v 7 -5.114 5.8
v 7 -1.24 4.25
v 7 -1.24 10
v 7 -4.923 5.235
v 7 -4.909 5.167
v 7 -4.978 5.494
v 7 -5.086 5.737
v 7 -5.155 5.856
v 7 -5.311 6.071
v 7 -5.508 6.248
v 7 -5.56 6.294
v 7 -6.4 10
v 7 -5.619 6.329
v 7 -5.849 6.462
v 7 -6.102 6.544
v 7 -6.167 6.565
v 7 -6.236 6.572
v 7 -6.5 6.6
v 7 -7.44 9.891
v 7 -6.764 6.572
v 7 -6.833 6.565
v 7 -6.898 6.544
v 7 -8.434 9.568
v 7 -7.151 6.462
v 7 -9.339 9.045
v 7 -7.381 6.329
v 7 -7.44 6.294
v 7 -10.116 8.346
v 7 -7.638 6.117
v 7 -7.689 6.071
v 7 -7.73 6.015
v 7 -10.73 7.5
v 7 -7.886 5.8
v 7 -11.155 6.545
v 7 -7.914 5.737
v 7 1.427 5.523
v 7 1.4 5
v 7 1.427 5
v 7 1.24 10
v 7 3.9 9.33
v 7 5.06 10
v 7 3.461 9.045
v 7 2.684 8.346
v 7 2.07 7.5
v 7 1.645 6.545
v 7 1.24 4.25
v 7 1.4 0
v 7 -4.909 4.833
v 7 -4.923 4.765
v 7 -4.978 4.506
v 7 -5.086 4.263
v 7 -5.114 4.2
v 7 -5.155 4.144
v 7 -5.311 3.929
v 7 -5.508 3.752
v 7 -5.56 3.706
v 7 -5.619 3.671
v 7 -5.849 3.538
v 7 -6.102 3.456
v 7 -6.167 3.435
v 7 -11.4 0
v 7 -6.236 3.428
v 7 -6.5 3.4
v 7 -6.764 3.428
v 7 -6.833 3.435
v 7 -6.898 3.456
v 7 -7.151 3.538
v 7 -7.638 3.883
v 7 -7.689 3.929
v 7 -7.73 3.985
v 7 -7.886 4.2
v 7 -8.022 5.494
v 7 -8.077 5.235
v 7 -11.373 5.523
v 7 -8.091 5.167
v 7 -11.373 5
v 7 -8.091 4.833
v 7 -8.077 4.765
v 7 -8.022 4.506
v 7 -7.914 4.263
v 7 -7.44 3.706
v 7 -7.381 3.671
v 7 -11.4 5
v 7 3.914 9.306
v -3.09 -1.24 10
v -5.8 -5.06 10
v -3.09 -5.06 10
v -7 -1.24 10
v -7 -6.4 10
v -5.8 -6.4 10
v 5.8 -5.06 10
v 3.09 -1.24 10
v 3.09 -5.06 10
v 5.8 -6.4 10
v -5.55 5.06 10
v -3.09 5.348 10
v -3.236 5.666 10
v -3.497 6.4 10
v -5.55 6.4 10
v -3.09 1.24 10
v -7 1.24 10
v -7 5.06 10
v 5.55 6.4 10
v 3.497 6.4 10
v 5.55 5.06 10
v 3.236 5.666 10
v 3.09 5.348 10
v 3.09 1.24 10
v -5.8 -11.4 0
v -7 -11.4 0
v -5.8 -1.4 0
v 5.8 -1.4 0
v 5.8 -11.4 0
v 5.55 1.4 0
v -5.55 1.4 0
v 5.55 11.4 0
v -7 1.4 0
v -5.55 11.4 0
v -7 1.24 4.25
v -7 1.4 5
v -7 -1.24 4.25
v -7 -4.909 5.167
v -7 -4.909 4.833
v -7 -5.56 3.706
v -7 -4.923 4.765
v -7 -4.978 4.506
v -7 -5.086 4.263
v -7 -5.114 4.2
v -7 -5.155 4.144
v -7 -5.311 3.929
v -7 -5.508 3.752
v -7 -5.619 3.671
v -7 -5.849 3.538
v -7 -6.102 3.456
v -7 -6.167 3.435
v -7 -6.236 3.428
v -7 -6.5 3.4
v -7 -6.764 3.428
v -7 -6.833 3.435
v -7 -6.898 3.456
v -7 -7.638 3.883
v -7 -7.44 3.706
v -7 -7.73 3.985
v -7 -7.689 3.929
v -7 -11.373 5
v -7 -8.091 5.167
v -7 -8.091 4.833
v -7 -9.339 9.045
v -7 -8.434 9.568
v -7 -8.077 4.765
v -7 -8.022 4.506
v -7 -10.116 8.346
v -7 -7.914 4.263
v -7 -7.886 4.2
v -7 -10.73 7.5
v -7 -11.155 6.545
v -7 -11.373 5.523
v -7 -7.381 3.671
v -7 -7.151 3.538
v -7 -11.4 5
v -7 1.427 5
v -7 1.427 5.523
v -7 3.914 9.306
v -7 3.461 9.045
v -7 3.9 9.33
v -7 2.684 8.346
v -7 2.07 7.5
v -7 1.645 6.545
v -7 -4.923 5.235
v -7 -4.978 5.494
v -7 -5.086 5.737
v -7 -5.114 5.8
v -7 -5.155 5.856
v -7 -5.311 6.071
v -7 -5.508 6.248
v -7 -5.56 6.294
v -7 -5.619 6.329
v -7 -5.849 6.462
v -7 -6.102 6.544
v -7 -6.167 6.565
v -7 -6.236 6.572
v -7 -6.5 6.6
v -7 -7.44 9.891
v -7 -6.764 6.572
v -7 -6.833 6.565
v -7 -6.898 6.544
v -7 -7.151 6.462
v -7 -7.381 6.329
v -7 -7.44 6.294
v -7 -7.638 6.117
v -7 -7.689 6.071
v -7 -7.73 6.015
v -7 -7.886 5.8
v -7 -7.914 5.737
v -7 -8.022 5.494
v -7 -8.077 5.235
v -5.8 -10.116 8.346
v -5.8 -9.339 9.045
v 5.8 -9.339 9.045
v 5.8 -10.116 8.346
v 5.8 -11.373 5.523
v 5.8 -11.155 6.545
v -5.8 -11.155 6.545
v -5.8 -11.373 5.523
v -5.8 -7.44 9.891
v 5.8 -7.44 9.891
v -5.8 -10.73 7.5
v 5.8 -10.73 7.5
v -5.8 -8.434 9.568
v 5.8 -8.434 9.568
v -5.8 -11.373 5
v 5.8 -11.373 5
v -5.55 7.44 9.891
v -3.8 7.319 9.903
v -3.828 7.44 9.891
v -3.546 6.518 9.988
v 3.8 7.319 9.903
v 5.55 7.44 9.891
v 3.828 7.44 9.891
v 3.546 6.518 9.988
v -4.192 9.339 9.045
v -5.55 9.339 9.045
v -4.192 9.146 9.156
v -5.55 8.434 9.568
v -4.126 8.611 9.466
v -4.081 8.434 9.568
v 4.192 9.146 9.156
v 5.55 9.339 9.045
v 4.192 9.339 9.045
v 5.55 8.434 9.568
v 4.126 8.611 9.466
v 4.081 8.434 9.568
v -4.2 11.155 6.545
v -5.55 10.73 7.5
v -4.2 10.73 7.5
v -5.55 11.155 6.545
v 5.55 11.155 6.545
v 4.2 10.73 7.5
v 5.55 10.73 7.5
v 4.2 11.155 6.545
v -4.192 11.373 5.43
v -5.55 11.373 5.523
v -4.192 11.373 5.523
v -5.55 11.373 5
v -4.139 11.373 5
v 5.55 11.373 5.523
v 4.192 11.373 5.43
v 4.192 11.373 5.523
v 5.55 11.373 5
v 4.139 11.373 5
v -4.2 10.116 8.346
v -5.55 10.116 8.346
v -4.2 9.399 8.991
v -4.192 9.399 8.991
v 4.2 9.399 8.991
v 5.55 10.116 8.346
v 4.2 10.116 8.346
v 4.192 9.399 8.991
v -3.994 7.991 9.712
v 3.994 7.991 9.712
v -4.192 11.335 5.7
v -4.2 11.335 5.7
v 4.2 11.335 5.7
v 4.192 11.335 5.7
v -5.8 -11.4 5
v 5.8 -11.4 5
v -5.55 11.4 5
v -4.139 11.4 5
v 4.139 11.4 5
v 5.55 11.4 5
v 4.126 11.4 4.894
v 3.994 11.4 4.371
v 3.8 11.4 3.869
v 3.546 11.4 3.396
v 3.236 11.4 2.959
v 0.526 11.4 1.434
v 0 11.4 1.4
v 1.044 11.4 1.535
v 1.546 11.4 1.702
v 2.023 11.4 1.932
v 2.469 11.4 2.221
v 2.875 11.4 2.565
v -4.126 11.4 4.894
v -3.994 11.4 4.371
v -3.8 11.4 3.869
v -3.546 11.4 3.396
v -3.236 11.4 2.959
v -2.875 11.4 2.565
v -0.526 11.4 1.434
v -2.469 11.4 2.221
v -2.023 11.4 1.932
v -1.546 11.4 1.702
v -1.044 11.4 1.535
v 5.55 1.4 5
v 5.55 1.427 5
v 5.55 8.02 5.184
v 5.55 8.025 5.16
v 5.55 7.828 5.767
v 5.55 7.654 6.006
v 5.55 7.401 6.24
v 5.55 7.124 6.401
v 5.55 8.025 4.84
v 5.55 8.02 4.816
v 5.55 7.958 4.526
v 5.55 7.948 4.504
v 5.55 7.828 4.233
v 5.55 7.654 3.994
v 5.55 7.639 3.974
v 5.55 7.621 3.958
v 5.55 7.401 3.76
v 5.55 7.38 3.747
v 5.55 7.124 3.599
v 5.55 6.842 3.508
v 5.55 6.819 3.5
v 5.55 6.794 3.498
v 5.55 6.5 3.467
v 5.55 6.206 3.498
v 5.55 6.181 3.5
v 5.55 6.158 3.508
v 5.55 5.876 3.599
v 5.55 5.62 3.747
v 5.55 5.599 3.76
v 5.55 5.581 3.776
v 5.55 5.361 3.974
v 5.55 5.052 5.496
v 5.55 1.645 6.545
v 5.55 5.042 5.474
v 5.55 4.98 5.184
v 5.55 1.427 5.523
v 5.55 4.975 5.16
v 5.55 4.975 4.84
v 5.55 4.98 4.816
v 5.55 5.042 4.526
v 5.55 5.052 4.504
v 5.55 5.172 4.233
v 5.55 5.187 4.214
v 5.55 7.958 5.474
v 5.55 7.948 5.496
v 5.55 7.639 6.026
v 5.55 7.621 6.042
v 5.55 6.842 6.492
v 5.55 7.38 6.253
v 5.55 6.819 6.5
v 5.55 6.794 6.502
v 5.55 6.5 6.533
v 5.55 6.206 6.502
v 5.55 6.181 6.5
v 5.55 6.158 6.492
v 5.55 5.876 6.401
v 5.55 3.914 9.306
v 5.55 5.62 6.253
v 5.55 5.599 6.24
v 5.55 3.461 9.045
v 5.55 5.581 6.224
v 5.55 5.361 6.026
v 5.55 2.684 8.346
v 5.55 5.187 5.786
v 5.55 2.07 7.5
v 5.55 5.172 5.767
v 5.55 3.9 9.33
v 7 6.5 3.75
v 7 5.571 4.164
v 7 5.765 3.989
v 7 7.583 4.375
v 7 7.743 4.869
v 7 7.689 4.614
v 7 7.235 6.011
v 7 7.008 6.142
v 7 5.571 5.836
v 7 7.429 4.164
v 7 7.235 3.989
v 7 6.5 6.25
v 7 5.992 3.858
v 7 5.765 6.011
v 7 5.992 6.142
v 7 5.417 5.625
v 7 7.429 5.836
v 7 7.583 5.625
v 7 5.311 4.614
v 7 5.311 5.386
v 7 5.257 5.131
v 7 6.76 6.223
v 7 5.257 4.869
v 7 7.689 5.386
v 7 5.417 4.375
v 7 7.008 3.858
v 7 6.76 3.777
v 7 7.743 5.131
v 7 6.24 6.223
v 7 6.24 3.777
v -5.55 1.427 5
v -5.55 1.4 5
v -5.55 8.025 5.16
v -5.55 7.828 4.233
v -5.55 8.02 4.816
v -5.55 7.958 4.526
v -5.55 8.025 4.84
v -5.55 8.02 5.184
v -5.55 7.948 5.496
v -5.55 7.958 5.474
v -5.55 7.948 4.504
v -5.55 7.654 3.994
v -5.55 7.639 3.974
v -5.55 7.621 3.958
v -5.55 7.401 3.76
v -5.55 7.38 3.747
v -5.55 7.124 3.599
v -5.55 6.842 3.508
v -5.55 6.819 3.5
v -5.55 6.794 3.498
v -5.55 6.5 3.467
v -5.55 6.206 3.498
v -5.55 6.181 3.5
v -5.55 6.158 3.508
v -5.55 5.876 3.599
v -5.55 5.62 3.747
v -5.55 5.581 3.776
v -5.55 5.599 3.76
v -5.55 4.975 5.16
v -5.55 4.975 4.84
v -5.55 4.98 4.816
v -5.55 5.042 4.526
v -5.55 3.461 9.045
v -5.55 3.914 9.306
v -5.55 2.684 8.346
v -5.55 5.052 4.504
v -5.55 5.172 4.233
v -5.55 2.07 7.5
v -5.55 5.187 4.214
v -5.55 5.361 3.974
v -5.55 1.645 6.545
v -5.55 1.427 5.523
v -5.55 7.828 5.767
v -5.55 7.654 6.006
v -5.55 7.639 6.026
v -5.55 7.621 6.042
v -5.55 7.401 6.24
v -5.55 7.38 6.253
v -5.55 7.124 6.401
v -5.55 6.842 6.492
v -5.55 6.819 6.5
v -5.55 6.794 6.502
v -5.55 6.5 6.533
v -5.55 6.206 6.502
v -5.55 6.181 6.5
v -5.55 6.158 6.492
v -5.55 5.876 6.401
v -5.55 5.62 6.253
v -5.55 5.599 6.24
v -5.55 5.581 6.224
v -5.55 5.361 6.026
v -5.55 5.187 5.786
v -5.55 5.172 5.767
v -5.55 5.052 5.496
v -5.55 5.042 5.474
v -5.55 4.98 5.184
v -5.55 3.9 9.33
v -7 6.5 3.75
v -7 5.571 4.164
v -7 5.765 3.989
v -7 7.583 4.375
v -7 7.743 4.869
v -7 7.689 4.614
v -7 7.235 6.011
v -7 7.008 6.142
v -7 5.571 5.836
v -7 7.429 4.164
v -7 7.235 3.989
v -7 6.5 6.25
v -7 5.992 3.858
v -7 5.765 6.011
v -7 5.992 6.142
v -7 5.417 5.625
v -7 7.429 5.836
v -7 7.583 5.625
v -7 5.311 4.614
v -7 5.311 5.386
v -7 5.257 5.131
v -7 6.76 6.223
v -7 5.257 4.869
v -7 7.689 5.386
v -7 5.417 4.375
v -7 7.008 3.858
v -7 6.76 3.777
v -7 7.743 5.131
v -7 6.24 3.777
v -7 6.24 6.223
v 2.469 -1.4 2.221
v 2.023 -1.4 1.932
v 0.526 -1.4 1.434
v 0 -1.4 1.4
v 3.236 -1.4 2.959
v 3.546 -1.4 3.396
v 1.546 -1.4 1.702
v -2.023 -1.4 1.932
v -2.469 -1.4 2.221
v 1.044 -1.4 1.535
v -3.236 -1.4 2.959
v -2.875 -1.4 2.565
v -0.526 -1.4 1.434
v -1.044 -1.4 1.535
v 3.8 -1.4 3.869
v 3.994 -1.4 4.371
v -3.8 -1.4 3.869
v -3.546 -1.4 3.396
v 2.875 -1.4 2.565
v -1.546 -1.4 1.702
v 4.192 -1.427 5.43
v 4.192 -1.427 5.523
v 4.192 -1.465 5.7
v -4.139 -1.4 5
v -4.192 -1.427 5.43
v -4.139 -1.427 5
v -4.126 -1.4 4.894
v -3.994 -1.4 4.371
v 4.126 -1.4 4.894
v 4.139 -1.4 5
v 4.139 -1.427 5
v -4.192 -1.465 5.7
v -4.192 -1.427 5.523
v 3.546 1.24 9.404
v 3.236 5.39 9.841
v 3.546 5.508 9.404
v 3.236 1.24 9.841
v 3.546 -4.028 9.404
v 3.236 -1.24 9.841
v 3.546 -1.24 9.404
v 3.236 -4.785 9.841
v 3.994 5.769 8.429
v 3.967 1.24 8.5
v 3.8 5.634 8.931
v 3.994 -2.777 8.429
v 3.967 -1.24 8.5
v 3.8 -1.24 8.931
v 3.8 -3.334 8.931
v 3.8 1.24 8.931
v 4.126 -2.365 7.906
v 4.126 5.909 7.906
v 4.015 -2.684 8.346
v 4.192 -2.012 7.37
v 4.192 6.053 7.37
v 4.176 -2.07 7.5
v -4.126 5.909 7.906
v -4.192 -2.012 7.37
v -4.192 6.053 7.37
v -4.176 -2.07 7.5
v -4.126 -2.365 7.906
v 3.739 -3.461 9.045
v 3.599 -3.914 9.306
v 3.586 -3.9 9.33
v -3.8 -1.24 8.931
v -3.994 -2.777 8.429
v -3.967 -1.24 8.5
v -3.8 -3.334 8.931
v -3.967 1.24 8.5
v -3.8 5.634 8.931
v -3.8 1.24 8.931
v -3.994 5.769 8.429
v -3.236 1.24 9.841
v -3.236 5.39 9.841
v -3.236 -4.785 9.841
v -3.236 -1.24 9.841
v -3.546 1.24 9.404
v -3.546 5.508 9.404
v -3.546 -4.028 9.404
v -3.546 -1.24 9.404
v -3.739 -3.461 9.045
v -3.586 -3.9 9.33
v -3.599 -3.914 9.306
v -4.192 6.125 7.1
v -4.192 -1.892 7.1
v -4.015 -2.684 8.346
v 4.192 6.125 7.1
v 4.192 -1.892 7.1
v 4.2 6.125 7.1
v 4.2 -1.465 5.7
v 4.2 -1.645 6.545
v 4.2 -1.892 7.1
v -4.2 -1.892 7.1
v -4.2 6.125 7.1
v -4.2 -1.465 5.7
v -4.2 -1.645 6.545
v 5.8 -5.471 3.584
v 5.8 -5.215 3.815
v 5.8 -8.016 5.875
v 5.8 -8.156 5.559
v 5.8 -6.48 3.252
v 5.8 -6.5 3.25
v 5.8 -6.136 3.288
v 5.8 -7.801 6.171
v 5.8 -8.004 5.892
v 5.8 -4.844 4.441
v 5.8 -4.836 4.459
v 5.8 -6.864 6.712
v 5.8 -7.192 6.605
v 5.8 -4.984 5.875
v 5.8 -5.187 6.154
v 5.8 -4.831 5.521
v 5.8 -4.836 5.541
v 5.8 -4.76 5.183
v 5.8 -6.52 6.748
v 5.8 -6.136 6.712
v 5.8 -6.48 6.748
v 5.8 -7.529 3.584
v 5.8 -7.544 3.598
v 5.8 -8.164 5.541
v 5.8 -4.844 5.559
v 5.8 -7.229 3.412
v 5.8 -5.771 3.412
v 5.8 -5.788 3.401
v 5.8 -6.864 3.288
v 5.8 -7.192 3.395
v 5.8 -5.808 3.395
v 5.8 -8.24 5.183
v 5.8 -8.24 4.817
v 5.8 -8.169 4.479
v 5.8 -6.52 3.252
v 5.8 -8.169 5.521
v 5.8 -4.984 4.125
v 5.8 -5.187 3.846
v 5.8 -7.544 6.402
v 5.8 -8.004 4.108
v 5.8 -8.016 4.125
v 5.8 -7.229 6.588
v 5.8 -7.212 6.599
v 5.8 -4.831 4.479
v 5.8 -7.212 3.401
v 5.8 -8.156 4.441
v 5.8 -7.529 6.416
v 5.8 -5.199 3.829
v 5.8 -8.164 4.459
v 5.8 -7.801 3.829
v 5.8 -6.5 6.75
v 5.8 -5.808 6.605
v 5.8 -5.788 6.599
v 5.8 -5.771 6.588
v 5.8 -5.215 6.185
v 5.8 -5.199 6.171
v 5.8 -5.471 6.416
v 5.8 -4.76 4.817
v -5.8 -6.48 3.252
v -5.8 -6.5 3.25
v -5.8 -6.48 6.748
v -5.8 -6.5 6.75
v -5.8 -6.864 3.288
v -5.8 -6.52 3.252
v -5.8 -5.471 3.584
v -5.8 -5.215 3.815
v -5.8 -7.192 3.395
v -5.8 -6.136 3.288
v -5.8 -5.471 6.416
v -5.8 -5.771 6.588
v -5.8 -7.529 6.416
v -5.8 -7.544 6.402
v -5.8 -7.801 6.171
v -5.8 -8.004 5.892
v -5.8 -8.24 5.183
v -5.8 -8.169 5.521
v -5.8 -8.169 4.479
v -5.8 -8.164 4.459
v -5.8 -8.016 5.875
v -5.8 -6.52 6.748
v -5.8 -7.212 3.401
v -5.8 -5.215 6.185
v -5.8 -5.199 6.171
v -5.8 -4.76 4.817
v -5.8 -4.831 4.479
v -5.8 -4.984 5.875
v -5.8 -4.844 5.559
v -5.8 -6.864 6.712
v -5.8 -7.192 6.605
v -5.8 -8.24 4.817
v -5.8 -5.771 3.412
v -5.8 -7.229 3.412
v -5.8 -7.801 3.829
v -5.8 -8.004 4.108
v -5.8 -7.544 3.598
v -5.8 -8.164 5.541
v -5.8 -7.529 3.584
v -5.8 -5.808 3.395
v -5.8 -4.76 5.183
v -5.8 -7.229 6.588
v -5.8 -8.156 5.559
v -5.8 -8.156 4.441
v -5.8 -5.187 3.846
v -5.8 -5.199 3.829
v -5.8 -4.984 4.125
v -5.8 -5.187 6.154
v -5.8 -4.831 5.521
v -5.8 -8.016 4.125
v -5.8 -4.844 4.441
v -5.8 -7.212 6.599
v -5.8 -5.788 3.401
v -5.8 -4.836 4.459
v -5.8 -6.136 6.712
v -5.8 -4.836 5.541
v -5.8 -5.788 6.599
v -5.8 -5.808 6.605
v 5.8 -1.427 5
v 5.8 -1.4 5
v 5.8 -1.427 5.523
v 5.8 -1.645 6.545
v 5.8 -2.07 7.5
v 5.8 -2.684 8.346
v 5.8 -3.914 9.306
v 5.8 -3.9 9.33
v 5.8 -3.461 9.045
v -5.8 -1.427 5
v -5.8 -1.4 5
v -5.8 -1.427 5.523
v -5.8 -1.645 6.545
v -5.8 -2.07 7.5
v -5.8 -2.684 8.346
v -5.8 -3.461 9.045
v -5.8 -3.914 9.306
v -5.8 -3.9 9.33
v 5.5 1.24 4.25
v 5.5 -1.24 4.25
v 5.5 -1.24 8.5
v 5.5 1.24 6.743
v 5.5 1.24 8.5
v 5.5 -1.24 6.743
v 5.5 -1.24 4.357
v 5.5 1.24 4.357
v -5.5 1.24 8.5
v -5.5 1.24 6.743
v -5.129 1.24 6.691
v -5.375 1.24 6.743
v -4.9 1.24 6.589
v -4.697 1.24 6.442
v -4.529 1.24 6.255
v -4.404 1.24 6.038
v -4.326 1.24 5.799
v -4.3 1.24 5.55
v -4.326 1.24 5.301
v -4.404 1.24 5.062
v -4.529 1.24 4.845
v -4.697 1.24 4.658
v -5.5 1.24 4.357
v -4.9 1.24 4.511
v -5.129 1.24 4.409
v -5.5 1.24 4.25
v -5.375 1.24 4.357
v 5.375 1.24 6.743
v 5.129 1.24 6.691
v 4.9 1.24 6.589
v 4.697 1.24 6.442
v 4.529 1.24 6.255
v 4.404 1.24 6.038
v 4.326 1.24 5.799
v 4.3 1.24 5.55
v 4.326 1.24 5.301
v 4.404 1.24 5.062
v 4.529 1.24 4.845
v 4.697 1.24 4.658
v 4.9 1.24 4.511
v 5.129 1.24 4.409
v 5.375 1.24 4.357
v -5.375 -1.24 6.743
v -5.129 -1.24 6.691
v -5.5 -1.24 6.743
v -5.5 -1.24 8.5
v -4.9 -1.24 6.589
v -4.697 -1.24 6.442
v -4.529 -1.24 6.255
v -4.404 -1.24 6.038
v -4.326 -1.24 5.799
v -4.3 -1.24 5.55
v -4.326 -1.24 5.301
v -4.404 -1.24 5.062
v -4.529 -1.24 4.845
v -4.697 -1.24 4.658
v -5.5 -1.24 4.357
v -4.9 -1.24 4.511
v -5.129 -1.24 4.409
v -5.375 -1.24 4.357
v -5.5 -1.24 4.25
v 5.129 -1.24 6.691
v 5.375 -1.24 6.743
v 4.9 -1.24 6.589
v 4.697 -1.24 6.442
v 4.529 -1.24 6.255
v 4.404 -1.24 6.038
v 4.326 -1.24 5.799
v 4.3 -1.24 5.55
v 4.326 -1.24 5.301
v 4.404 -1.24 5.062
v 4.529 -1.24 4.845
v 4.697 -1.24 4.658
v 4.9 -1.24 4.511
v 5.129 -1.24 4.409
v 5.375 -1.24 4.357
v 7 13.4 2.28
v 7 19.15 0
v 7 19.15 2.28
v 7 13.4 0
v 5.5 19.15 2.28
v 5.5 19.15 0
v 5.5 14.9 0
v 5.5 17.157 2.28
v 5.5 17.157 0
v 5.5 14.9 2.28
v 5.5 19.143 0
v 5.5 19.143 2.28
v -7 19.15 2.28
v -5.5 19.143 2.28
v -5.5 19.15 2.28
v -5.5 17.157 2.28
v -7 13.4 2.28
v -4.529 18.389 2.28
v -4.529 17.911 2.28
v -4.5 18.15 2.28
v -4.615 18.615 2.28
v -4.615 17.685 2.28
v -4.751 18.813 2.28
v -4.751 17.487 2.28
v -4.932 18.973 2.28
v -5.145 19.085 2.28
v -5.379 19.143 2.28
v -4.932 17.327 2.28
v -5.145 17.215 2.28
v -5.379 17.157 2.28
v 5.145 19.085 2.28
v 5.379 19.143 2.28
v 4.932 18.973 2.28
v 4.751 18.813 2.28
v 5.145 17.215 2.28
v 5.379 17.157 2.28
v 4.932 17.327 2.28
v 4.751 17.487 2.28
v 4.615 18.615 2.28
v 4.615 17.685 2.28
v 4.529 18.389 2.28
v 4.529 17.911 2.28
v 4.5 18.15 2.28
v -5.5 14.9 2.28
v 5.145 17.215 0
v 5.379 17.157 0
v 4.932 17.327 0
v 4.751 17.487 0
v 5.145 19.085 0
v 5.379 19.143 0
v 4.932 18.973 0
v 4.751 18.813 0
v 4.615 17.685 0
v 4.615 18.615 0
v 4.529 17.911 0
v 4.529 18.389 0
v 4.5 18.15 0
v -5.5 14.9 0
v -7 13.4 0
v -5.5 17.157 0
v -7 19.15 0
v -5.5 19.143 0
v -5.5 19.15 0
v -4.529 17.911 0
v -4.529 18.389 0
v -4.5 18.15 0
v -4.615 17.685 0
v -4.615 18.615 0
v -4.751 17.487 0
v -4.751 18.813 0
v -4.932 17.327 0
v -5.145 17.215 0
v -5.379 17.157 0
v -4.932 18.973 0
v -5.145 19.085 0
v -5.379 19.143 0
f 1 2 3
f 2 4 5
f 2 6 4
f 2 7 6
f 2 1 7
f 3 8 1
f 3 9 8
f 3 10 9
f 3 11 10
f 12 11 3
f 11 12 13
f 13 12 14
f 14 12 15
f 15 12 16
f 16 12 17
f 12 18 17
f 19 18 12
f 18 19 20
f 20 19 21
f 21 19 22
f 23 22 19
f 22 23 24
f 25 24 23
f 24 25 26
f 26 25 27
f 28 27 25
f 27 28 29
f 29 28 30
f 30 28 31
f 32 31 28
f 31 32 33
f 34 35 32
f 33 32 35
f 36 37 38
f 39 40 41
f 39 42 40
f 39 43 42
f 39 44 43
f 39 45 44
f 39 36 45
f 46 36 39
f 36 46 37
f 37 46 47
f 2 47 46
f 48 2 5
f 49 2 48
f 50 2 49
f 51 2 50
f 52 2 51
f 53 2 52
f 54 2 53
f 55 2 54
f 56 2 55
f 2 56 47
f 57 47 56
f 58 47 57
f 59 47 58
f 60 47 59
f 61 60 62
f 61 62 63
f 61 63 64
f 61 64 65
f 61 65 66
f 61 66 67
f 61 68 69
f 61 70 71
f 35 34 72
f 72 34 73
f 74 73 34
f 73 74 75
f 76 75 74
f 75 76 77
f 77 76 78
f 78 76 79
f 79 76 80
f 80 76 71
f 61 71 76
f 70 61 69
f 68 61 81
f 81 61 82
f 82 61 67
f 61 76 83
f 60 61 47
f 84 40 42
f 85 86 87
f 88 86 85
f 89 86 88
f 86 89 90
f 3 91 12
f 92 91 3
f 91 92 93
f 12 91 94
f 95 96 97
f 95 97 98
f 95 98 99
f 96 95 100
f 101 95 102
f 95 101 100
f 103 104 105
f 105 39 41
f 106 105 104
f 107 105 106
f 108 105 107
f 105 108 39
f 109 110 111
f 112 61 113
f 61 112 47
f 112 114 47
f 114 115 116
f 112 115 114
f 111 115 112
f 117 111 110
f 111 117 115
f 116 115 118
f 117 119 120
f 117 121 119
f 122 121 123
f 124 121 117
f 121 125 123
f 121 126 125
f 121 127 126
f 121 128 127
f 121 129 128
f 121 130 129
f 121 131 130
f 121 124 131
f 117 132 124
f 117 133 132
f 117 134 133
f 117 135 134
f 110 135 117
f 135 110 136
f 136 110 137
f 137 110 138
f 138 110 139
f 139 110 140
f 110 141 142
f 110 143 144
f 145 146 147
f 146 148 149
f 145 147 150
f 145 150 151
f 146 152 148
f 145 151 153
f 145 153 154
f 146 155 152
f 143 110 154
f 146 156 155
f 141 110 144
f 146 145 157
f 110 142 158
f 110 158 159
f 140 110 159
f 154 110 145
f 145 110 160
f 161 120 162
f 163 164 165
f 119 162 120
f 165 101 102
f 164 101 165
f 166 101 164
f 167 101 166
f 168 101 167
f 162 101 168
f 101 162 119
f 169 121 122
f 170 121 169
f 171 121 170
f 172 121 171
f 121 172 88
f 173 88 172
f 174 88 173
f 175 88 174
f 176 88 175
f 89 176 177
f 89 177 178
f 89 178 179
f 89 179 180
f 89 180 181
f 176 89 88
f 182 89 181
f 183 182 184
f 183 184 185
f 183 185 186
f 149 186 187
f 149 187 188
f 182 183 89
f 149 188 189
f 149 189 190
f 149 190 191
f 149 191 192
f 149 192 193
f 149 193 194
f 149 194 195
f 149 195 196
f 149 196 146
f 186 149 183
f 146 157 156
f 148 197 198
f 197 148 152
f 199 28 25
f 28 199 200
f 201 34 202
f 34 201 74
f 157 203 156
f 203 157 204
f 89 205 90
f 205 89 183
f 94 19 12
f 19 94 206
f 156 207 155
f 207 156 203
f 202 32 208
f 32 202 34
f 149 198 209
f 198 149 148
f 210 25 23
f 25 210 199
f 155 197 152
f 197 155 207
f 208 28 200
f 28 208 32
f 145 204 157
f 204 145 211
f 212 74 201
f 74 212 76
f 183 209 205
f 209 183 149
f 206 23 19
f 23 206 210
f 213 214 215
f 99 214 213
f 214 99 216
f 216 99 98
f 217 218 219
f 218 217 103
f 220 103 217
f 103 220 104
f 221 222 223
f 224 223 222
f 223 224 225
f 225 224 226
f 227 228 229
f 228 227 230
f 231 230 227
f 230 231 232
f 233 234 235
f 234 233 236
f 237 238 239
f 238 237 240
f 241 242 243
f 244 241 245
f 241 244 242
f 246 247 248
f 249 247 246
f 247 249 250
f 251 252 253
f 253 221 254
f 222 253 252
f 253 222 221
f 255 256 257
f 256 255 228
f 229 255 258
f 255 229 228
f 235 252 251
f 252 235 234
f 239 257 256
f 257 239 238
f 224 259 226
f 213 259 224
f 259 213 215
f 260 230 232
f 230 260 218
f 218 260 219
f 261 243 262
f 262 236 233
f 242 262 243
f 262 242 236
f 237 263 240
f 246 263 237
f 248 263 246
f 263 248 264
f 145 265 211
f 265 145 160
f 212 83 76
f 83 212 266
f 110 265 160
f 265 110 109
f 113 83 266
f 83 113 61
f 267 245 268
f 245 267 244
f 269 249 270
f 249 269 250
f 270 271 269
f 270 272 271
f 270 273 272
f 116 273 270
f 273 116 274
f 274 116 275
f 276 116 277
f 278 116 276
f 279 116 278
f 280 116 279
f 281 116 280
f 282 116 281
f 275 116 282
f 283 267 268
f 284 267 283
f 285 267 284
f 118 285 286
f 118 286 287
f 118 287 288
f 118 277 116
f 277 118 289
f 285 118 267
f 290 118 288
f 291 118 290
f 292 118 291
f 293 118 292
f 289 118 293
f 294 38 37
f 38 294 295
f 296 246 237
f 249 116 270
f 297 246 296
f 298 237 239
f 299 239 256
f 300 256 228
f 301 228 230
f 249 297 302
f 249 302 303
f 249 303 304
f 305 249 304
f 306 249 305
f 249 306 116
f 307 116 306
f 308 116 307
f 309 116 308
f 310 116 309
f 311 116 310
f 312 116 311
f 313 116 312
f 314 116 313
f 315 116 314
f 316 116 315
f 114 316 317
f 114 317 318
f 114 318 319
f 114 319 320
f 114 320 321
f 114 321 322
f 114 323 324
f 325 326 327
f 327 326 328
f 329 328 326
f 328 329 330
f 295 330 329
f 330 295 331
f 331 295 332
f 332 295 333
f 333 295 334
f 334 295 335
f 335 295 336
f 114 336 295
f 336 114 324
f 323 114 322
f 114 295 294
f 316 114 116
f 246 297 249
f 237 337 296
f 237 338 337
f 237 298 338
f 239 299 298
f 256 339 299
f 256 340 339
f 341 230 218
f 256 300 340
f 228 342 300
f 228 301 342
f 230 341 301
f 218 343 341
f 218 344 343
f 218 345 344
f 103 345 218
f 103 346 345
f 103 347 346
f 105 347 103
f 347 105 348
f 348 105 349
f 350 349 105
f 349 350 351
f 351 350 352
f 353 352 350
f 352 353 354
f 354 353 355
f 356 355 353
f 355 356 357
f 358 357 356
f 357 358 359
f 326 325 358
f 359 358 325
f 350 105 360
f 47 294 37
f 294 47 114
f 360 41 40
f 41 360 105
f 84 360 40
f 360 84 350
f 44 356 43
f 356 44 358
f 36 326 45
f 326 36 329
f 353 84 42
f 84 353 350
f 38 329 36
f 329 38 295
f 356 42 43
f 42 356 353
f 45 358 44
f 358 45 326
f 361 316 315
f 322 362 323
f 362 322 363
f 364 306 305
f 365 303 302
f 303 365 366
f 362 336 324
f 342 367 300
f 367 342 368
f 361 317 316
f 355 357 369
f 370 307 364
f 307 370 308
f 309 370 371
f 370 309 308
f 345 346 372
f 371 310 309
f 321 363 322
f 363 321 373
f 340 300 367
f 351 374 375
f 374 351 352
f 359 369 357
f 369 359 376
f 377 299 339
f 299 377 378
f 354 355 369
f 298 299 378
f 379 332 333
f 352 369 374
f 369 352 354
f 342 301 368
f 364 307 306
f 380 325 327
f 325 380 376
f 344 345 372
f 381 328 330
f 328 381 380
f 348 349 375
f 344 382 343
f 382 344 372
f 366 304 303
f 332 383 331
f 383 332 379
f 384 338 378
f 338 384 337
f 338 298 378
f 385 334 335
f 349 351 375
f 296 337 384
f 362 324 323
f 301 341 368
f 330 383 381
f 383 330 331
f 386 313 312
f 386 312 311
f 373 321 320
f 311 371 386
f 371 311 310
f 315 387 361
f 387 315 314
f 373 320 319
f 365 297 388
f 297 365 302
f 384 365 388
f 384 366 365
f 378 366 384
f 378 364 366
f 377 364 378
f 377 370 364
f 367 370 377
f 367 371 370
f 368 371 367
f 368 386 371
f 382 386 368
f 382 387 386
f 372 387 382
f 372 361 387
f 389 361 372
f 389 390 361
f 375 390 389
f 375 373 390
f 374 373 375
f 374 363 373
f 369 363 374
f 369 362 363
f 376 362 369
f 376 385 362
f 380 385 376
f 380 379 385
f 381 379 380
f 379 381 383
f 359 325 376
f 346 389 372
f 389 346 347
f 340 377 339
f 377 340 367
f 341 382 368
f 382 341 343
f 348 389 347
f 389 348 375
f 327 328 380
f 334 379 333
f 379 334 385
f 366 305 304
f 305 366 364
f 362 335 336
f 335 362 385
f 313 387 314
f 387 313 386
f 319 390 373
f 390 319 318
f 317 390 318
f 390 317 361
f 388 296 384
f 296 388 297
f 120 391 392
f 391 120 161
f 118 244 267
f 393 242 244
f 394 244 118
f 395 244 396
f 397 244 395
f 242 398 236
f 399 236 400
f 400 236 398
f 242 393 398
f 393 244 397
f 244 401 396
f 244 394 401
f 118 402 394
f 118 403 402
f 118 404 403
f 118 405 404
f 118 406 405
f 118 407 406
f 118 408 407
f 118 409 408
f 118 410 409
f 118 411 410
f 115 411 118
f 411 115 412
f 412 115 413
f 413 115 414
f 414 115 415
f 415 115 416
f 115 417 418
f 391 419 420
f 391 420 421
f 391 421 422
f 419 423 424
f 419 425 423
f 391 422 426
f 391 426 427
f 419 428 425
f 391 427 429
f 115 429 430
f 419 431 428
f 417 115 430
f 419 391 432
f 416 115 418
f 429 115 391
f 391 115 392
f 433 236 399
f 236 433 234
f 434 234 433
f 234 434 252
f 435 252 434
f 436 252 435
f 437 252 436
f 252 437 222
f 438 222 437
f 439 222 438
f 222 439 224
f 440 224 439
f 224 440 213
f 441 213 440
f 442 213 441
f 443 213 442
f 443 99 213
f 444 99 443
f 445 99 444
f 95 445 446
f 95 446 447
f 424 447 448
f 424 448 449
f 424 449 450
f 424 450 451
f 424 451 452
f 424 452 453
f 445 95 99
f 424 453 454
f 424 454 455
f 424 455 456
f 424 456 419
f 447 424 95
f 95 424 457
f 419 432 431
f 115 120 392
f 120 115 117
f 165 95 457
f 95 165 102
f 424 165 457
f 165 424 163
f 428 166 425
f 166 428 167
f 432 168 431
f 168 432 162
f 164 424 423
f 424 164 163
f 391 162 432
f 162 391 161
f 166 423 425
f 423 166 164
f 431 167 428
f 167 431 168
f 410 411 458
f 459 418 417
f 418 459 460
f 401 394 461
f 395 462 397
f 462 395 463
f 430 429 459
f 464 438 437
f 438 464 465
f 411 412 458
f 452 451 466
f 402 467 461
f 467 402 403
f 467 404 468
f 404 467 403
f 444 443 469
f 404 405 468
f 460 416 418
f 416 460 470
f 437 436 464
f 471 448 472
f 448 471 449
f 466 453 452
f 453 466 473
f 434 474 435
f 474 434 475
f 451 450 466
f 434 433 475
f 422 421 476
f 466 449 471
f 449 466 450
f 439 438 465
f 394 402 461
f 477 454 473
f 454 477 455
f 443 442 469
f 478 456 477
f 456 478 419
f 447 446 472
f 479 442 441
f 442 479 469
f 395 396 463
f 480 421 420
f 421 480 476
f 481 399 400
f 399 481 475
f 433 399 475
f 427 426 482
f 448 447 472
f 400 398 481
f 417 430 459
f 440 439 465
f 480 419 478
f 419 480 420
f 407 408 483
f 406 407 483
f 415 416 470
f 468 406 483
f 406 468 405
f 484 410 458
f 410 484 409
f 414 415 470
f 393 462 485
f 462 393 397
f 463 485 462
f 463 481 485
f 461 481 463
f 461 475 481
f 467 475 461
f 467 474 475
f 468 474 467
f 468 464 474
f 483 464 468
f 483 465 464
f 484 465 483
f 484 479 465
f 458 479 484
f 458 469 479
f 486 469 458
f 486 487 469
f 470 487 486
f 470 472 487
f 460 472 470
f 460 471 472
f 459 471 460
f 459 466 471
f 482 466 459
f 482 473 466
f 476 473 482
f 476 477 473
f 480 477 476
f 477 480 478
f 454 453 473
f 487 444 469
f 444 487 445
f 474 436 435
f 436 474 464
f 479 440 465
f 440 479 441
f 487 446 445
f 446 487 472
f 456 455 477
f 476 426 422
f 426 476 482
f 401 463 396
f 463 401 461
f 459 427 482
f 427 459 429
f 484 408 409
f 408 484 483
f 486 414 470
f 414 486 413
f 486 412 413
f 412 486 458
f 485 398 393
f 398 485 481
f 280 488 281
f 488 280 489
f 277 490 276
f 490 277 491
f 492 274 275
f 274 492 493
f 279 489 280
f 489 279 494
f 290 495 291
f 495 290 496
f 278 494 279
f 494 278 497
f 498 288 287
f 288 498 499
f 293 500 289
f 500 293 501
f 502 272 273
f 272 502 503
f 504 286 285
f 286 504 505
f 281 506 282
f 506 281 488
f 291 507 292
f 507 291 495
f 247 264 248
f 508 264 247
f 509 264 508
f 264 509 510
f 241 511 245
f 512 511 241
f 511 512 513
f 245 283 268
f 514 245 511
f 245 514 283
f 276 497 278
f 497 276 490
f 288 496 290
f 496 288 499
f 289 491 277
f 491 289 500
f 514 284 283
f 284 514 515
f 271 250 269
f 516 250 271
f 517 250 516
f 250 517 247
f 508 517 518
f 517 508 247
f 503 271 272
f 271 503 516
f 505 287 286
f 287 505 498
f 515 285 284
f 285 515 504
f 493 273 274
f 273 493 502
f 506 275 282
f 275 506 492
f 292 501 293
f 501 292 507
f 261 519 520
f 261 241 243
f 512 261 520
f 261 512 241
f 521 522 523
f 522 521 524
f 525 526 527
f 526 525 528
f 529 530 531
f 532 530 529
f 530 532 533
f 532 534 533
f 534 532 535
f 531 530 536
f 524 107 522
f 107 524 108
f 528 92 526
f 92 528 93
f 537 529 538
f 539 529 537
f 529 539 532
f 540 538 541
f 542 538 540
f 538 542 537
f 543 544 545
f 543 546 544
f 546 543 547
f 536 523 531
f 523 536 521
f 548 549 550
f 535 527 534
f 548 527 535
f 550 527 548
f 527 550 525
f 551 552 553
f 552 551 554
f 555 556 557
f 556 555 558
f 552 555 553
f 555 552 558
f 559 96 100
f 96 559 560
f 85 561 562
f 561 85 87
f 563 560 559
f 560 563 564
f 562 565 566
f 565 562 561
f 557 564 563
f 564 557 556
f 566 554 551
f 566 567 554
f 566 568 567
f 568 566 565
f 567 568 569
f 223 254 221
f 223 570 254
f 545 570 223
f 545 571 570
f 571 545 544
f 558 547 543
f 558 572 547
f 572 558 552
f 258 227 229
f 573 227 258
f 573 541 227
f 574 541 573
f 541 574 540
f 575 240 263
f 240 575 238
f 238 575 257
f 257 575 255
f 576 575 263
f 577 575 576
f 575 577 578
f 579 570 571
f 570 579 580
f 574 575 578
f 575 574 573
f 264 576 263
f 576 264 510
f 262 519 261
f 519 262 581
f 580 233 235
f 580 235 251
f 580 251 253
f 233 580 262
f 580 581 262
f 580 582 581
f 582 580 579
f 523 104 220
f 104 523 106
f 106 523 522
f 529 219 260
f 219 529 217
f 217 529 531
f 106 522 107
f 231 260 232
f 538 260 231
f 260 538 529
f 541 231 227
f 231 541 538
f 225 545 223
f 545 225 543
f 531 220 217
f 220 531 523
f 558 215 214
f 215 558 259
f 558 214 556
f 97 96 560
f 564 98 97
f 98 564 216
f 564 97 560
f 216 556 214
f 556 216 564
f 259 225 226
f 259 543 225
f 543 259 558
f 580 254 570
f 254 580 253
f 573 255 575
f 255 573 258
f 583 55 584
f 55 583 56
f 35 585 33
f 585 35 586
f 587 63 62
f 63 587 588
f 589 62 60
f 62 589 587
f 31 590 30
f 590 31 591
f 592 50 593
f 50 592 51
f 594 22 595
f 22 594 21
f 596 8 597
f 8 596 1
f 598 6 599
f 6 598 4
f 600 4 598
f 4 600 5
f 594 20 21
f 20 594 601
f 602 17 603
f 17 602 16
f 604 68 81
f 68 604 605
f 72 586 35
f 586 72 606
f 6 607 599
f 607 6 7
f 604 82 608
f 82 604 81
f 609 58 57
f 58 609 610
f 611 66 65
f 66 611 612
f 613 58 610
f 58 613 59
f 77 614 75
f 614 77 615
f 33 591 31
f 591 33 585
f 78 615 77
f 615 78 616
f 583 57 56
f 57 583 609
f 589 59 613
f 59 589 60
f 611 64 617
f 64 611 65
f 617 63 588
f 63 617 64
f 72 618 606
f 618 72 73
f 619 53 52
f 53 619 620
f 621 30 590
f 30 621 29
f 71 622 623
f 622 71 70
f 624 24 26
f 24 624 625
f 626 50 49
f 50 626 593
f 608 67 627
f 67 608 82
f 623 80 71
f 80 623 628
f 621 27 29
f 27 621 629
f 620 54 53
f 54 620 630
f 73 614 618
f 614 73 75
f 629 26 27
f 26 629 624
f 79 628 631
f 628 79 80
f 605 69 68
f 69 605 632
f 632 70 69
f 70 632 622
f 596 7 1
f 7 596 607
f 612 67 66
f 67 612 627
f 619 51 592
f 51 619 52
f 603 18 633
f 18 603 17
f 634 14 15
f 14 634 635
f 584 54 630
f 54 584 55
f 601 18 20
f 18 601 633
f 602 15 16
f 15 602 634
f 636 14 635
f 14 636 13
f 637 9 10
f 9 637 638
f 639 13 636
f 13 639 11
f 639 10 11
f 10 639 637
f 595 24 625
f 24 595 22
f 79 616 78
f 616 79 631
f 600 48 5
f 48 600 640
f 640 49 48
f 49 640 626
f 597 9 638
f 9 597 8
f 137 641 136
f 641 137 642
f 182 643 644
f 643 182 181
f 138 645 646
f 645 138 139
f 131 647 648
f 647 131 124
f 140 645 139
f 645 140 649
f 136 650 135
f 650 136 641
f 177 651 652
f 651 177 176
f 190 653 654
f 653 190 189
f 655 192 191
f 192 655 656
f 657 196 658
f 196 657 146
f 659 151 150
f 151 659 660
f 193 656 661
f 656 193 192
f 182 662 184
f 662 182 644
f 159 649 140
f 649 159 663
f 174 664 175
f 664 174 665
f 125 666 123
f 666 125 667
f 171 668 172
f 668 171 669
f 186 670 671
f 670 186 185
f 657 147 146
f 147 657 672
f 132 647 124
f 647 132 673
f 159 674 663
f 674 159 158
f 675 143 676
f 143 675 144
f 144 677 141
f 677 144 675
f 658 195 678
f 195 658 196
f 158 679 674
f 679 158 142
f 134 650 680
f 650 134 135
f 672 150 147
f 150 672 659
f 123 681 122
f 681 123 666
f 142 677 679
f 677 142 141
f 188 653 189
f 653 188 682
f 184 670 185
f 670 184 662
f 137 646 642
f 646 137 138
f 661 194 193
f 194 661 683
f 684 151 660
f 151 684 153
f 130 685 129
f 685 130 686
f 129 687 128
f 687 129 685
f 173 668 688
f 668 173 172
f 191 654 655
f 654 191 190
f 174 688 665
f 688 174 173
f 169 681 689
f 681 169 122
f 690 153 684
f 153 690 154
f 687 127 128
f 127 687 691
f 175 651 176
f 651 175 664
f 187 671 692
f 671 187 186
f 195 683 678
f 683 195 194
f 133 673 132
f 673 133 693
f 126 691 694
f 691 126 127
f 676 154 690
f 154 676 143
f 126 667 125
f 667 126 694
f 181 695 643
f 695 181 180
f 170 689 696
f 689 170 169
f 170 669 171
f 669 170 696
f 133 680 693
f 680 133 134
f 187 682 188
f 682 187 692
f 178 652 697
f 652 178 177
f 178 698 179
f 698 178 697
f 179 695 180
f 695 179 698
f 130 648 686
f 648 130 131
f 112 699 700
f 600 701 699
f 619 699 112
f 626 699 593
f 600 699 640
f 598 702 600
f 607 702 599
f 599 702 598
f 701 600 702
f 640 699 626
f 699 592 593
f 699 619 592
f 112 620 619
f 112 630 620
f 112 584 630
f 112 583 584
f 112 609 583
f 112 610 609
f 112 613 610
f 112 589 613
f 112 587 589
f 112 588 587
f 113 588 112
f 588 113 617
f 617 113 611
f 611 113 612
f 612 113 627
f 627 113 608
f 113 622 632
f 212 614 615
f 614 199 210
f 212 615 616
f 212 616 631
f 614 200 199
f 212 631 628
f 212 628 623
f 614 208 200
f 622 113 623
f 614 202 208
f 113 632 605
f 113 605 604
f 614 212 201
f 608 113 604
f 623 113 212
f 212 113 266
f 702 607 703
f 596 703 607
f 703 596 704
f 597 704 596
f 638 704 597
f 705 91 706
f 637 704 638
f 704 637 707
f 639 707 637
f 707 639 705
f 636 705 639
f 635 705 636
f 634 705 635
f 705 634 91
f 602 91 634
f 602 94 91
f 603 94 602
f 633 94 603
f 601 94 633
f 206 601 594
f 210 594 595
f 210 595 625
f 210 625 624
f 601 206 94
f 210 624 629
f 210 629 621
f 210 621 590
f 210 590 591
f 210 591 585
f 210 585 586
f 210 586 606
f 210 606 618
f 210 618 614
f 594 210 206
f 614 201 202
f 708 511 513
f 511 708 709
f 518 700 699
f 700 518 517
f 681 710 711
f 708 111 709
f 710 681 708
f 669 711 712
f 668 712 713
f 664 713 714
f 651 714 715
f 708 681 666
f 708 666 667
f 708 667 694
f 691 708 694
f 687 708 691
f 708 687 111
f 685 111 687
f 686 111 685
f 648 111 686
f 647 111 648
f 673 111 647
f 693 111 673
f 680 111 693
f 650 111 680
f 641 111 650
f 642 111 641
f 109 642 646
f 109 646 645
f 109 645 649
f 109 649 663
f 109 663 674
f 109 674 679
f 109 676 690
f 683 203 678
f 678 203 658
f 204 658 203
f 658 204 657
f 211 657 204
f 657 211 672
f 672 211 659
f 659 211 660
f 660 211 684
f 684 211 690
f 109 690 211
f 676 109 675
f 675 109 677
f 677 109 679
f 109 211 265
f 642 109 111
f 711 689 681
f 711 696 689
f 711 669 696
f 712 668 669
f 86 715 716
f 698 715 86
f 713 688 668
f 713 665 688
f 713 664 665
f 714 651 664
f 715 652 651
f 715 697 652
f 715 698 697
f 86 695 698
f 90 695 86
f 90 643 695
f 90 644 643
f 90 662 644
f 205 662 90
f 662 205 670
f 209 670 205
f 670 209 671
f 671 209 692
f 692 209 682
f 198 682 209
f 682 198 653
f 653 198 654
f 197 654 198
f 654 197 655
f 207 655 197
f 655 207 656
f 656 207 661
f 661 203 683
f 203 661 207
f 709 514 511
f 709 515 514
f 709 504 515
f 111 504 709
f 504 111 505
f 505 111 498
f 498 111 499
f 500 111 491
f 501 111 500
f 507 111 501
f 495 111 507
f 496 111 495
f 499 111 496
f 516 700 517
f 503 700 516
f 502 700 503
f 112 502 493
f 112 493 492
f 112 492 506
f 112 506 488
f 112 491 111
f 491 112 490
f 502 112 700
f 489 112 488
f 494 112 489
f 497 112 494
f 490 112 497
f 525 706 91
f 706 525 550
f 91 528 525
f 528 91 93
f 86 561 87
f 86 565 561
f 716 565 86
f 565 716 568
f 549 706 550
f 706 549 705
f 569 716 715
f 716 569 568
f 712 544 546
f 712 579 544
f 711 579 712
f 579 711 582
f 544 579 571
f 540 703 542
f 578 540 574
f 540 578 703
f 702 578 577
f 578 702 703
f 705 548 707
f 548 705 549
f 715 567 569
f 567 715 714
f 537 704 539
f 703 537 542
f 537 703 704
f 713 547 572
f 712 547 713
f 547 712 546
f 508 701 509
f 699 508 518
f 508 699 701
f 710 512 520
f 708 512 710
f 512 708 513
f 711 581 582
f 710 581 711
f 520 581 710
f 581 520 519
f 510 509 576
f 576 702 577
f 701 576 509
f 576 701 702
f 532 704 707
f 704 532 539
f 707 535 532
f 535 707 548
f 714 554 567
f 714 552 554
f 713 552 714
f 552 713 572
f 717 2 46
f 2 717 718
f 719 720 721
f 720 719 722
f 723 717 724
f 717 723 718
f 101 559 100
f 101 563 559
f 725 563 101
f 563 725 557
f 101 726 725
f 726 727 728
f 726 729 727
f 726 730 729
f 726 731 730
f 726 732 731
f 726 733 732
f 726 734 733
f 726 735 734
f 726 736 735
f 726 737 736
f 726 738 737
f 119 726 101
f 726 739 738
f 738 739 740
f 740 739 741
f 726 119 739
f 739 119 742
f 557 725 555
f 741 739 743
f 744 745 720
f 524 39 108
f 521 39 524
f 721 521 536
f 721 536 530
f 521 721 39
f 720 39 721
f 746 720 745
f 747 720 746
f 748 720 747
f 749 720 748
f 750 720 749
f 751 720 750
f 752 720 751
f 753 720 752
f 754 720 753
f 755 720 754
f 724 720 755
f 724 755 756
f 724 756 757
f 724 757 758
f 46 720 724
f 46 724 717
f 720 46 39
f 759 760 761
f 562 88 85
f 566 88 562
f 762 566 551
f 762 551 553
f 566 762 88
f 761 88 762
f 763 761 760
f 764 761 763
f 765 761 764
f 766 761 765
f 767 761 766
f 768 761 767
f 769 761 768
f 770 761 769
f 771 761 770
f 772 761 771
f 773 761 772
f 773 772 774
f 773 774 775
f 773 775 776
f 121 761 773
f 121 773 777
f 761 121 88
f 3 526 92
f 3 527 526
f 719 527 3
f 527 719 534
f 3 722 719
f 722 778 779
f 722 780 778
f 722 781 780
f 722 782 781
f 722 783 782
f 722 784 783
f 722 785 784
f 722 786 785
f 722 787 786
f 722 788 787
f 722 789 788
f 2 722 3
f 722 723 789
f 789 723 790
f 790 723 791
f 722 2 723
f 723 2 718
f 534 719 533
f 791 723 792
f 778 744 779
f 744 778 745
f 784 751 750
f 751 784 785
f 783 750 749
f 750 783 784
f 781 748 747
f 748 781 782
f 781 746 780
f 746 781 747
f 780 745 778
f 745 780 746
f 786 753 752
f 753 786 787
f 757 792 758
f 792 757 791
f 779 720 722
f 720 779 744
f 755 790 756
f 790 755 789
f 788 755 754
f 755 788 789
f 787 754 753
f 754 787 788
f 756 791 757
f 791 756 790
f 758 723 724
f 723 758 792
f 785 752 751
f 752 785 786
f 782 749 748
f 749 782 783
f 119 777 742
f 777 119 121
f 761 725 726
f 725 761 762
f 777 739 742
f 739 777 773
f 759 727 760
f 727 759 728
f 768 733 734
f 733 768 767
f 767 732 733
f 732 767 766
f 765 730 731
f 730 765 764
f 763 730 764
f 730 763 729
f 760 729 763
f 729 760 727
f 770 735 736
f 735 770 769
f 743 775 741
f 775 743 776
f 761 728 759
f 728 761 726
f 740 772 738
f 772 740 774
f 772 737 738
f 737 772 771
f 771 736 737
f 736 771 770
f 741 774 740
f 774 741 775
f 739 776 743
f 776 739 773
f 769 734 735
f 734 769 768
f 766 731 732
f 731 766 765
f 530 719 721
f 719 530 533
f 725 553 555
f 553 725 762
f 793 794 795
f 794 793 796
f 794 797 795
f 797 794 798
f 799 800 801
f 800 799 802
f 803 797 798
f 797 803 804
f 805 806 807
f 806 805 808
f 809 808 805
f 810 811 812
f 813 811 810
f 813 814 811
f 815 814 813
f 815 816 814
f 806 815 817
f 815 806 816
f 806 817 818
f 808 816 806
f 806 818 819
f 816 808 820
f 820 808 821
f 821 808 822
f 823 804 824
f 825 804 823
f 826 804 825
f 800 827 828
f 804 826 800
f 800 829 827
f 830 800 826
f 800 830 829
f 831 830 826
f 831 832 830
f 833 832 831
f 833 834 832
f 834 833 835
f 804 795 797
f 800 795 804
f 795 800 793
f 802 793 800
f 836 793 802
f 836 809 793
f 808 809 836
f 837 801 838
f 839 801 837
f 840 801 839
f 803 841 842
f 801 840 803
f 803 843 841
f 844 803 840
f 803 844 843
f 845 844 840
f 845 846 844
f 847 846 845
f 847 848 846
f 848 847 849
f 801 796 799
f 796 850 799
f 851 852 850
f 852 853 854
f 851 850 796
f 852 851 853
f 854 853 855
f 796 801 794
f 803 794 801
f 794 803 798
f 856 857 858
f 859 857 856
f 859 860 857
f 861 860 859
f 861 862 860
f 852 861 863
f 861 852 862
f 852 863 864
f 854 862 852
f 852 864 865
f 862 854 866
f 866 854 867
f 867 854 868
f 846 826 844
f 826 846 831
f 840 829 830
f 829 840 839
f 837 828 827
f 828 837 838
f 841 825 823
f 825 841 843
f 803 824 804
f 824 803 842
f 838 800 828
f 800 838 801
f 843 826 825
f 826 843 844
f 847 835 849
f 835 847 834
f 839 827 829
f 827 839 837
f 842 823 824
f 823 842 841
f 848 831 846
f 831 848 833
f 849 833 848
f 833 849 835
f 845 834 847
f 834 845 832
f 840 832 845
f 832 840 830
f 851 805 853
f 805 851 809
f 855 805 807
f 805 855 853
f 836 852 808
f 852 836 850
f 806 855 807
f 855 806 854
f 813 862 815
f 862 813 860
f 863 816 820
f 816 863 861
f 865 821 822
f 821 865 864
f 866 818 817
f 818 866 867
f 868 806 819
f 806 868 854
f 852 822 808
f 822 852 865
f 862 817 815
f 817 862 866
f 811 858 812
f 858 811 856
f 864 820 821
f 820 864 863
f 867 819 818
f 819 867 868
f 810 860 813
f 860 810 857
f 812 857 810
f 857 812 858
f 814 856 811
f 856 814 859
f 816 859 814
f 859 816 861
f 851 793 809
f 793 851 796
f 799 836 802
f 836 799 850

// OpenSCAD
/*
Original Code by Joerg Scheuermann: https://www.thingiverse.com/Joerg
Original on Thingiverse: https://www.thingiverse.com/thing:8239

Clip module, Toothpick diameter Variable,
OpenSCAD/Thingiverse Customizer optimization,
Multicolor Modifier Block and extra comments
added by Gasol1n (Christian Riedl): https://www.gasol1n.com/
                                                        https://www.thingiverse.com/Gasolin

Licensed under CC BY-SA 3.0
https://creativecommons.org/licenses/by-sa/3.0/
*/

/* [Size] */
// Width of the Chain Link
width= 14;
// Length of the Chain Link
length=17;
// Height of the Chain Link
height=10;

/* [Hidden] */
// maximum allowed bending-angle
max_angle = 50; 

/* [Angles] */
// max. angle allowed to bend downwards
under_angle=0; // [50]
// max. angle allowed to bend upwards
over_angle=30; // [50]

/* [Variant] */
// true - connectors go from outside to inside; false - vise versa
inner_axis=0; // [1:true, 0:false]
// true - top is closed, no holes/clip; false - top is open
closed=0; // [1:true, 0:false]
// true - a clip is used an generated instead of the toothpick hole; only works if closed=false
clip=1; // [1:true, 0:false]

/* [Further Settings] */
// Tolerance for better fit
tolerance = 0.2;
// Diameter of the toothpick
toothpick = 2.1; 
// Generate Modifier Block for Multicolor Stripe
multicolor_block=0; // [1:true, 0:false]
//Height of the Modifier (Multicolor) Block
mcb_height=2;

module outline(width, length, height, radius, l1, angle)
{
	y_ofs = l1 / 2;
	t     = radius / 2;

	difference() {
		union() {
			translate([0, 0, height/2])    cube([width,l1,height], true);
			translate([0, -y_ofs, radius]) rotate([0, 90, 0]) cylinder(width, r = radius, center = true, $fs=0.5);
			translate([0,  y_ofs, radius]) rotate([0, 90, 0]) cylinder(width, r = radius, center = true, $fs=0.5);
			translate([0, -y_ofs, radius]) rotate([angle,     0, 0]) translate([0, -t, -t]) cube([width,radius,radius], true);
			translate([0,  y_ofs, radius]) rotate([360-angle, 0, 0]) translate([0,  t, -t]) cube([width,radius,radius], true);
		}
		translate([0, 0, -(t/2)]) cube([width,length,t], true);
	}
}

module axis(x_ofs, y_ofs, z_ofs, length, radius)
{
	rad = (radius * 0.25);
	translate([x_ofs,y_ofs,z_ofs]) rotate([0, 90, 0]) cylinder(length+tolerance, r1 = rad*1.25, r2 = rad, center = true, $fs=0.25);
}

module axis_hole(x_ofs, y_ofs, z_ofs, length, radius)
{
	rad = (radius * 0.25) * 1.25;
	translate([x_ofs,y_ofs,z_ofs]) rotate([0, 90, 0]) cylinder(length+tolerance, r1 = rad+tolerance, r2 = rad, center = true, $fs=0.25);
}

module outcut0(width, radius, h1, thick, angle, inner_axis)
{
	w = (width - thick)/2;
	t = thick + tolerance/2;

	translate([w, 0, 0]) union() {
		difference() {
			union() {
				translate([0,0,h1/2]) cube([t,radius*2, h1], true);
				translate([0,0,h1]) rotate([angle, 0, 0]) translate([0,radius/2,0]) cube([t,radius,radius*2], true);
				translate([0,0,h1]) rotate([0, 90, 0]) cylinder(t, r = radius, center = true, $fs=0.5);
				if (inner_axis) {
					axis_hole(-(1.5*w), tolerance/2, h1,w,radius);
				}
			}
			if (!inner_axis) {
				axis(-(tolerance)/2, tolerance/2, h1,thick,radius);
			}
		}
	}
}
module outcut(width, radius, l1, h1, thick, angle, inner_axis)
{
	translate([0,l1/2,0]) union() {
		outcut0(width, radius, h1, thick, angle, inner_axis);
		mirror([1,0,0]) outcut0(width, radius, h1, thick, angle, inner_axis);
	}
}

module incut(width, radius, l1, h1, thick, angle, inner_axis)
{
	width2 = width - 2*(thick-tolerance);

	translate([0,-(l1/2),h1]) difference() {
		union() {
			translate([0,0,-(h1/2)]) cube([width2,radius*2,h1], true);
			translate([0,0,0]) rotate([180-angle,0,0]) translate([0,radius/2,0]) cube([width2, radius, radius*2], true);
			translate([0,0,0]) rotate([0, 90, 0]) cylinder(width2, r = radius, center = true, $fs=0.5);
			if (!inner_axis) {
				axis_hole((width-thick)/2+tolerance, -(tolerance/2), 0,thick,radius);
				mirror([1,0,0]) axis_hole((width-thick)/2+tolerance, -(tolerance/2), 0,thick,radius);
			}
		}
		if (inner_axis) {
			axis(-((width2-thick)/2), -(tolerance/2), 0,thick,radius);
			mirror([1,0,0]) axis(-((width2-thick)/2), -(tolerance/2), 0,thick,radius);
		}
	}
}

module middle_0(length, radius, thick, closed)
{
	if (closed) {
		cube([radius*2,length,radius*2], true);
	} else {
		rotate([90, 90, 0]) cylinder(length, r = radius, center = true, $fn=50);
		translate([0,0,thick]) rotate([90, 90, 0]) cylinder(length, r = radius, center = true, $fn=50);
		translate([0,0,thick/2]) cube([2*radius,length,thick], true);
	}
}
module middle(width, radius, length, height, l1, h1, thick, over, under, inner_axis, closed)
{
	l = length;
	th = max(thick,thick * height/width);
	h = height - (closed ?2 :1)*th;
	w = width - 4*thick;
	r = h / 2;
	scale(v=[w/h,1,1]) translate(v = [0,0,r+th]) union() {
		translate([0,h1,0]) middle_0(l, r, th, closed);
		translate([0,(l1/2)+0.1,0]) {
			difference() {
				rotate([over,0,0]) union() {
					translate([0, l/4, 0]) middle_0(l/2, r, th, closed);
					translate([0, l/4,-r]) cube([2*r,l/2,2*r], true);
				}
				translate([0, l/4,-r]) cube([2*r,l/2,2*r], true);
			}
			difference() {
				rotate([-under,0,0]) union() {
					translate([0, l/4, 0]) middle_0(l/2, r, th, closed);
					translate([0, l/4,r]) cube([2*r,l/2,2*r], true);
				}
				translate([0, l/4,r]) cube([2*r,l/2,2*r], true);
			}
		}
	}
}

module clip(width, height, length, tol=0)
{
    tol2 = tol * 2;
    cwidth = (length/10)+tol;
    cthickness = 1.5+tol;
    clength = 5;
    ccylinder = 2+tol2;
    translate([0, 0, height-(cthickness-tol2)/2])union(){
        cube([width+tol2, cwidth, cthickness], true);
        translate([width/2-(cthickness-tol2)/2, 0, -clength/2])union(){
            cube([cthickness, cwidth, clength+tol], true);
            translate([-cthickness/2, 0, -(clength/2-ccylinder/2)])rotate([90, 0, 0])cylinder(cwidth, r = ccylinder / 2, center= true, $fs=0.25);
        }
        translate([-(width/2-(cthickness-tol2)/2), 0, -clength/2])rotate([0, 0, 180])union(){
            cube([cthickness, cwidth, clength+tol], true);
            translate([-cthickness/2, 0, -(clength/2-ccylinder/2)])rotate([90, 0, 0])cylinder(cwidth, r = ccylinder / 2, center= true, $fs=0.25);
        }
    }
}

module hole(width, height, closed)
{
	if (!closed) {
		translate([0,0,height-1.5]) rotate([0, 90, 0]) cylinder(width+1, r = toothpick / 2, center = true, $fs=0.25);
	}
}

module chain_link(width, length, height, under_angle, over_angle, inner_axis, closed, clip)
{
	thick = min(2,max(1, 0.1*width));
	radius = height / 2;
	len    = max(length, 2*(height+thick));
	l1     = len - (2 * radius);
	h1     = radius;
	under  = min(max_angle, under_angle);
	over   = min(max_angle, over_angle);

	difference() {
		outline(width, len, height, radius, l1, under);
		outcut(width, radius, l1, h1, thick, over,  inner_axis);
		middle(width, radius, len, height, l1, h1, thick, over, under, inner_axis, closed);
		incut(width, radius, l1, h1, thick, over, inner_axis);
        if(clip&&!closed){
            clip(width, height, len, tolerance);
        }else{
            hole(width, height, closed);
        }
	}
    if(clip&&!closed) translate([0, 2+height+len/2, (len/10)/2])rotate([90, 0, 0])clip(width, height, len);
}

// show three chain-links connected at maximum bending angles
module debug(width, length, height, under_angle, over_angle, inner_axis, closed)
{
	thick = min(2,max(1, 0.1*width));
	radius = height / 2;
	len    = max(length, 2*(height+thick));
	l1     = len - (2 * radius);
	y_ofs  = (l1 / 2) + 0.1;
	z_ofs  = radius;

	chain_link(width, length, height, under_angle, over_angle, inner_axis, closed);
	translate(v = [0, -y_ofs,z_ofs]) rotate(a = [min(max_angle, under_angle),0,0]) translate(v = [0,-y_ofs,-z_ofs]) chain_link(width, length, height, under_angle, over_angle, inner_axis, closed);
	translate(v = [0, y_ofs,z_ofs]) rotate(a = [min(max_angle, over_angle),0,0]) translate(v = [0,y_ofs,-z_ofs]) chain_link(width, length, height, under_angle, over_angle, inner_axis, closed);
}
//debug(15, 18, 10, 30, 30, true, false);

//Multicolor Block or Chain Link
if(multicolor_block){
    translate([0, 0, height/2])cube([width+2, length+2, mcb_height], center = true);
}else{
    //Old
    //chain_link(width= 30, length=45, height=15, under_angle=0, over_angle=30, inner_axis=false, closed=false , clip=true);
    // New - Changed for Customizer compatibility
    chain_link(width, length, height, under_angle, over_angle, inner_axis, closed , clip); 
}
